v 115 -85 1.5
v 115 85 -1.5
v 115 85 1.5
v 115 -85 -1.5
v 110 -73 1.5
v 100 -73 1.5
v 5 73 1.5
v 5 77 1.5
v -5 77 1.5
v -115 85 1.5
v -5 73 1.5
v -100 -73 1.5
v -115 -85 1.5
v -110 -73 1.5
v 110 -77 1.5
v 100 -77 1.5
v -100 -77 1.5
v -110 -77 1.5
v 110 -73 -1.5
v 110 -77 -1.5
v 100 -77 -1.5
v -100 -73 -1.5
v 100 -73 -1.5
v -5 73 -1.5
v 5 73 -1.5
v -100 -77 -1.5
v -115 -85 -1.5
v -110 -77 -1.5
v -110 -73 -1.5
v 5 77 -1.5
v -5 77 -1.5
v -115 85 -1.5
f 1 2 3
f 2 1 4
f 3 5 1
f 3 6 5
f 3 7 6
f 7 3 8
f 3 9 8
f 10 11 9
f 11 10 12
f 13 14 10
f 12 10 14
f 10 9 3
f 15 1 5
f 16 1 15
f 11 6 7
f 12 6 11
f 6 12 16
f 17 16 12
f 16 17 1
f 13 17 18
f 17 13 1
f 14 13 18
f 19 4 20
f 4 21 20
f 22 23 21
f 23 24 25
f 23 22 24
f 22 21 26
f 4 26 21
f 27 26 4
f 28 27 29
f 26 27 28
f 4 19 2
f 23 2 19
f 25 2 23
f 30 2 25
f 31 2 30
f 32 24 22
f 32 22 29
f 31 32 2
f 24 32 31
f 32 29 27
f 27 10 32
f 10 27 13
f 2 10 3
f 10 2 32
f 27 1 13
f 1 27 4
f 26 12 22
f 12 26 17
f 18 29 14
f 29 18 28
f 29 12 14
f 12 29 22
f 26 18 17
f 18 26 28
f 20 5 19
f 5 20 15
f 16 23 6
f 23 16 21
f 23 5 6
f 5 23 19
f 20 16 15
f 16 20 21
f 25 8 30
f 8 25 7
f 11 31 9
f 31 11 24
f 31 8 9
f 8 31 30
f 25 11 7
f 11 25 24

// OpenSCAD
// ========================================
// a 230 x 170 x 3 mm plate with three 10 x 4 mm slots
// NeuroCAD canonical IR; dimensions are millimetres
// ========================================
$fn = 48;

difference() {
  cube(size=[230, 170, 3], center=true);
  translate([-105, -75, 0]) {
    cube(size=[10, 4, 5], center=true);
  }
  translate([105, -75, 0]) {
    cube(size=[10, 4, 5], center=true);
  }
  translate([0, 75, 0]) {
    cube(size=[10, 4, 5], center=true);
  }
}
